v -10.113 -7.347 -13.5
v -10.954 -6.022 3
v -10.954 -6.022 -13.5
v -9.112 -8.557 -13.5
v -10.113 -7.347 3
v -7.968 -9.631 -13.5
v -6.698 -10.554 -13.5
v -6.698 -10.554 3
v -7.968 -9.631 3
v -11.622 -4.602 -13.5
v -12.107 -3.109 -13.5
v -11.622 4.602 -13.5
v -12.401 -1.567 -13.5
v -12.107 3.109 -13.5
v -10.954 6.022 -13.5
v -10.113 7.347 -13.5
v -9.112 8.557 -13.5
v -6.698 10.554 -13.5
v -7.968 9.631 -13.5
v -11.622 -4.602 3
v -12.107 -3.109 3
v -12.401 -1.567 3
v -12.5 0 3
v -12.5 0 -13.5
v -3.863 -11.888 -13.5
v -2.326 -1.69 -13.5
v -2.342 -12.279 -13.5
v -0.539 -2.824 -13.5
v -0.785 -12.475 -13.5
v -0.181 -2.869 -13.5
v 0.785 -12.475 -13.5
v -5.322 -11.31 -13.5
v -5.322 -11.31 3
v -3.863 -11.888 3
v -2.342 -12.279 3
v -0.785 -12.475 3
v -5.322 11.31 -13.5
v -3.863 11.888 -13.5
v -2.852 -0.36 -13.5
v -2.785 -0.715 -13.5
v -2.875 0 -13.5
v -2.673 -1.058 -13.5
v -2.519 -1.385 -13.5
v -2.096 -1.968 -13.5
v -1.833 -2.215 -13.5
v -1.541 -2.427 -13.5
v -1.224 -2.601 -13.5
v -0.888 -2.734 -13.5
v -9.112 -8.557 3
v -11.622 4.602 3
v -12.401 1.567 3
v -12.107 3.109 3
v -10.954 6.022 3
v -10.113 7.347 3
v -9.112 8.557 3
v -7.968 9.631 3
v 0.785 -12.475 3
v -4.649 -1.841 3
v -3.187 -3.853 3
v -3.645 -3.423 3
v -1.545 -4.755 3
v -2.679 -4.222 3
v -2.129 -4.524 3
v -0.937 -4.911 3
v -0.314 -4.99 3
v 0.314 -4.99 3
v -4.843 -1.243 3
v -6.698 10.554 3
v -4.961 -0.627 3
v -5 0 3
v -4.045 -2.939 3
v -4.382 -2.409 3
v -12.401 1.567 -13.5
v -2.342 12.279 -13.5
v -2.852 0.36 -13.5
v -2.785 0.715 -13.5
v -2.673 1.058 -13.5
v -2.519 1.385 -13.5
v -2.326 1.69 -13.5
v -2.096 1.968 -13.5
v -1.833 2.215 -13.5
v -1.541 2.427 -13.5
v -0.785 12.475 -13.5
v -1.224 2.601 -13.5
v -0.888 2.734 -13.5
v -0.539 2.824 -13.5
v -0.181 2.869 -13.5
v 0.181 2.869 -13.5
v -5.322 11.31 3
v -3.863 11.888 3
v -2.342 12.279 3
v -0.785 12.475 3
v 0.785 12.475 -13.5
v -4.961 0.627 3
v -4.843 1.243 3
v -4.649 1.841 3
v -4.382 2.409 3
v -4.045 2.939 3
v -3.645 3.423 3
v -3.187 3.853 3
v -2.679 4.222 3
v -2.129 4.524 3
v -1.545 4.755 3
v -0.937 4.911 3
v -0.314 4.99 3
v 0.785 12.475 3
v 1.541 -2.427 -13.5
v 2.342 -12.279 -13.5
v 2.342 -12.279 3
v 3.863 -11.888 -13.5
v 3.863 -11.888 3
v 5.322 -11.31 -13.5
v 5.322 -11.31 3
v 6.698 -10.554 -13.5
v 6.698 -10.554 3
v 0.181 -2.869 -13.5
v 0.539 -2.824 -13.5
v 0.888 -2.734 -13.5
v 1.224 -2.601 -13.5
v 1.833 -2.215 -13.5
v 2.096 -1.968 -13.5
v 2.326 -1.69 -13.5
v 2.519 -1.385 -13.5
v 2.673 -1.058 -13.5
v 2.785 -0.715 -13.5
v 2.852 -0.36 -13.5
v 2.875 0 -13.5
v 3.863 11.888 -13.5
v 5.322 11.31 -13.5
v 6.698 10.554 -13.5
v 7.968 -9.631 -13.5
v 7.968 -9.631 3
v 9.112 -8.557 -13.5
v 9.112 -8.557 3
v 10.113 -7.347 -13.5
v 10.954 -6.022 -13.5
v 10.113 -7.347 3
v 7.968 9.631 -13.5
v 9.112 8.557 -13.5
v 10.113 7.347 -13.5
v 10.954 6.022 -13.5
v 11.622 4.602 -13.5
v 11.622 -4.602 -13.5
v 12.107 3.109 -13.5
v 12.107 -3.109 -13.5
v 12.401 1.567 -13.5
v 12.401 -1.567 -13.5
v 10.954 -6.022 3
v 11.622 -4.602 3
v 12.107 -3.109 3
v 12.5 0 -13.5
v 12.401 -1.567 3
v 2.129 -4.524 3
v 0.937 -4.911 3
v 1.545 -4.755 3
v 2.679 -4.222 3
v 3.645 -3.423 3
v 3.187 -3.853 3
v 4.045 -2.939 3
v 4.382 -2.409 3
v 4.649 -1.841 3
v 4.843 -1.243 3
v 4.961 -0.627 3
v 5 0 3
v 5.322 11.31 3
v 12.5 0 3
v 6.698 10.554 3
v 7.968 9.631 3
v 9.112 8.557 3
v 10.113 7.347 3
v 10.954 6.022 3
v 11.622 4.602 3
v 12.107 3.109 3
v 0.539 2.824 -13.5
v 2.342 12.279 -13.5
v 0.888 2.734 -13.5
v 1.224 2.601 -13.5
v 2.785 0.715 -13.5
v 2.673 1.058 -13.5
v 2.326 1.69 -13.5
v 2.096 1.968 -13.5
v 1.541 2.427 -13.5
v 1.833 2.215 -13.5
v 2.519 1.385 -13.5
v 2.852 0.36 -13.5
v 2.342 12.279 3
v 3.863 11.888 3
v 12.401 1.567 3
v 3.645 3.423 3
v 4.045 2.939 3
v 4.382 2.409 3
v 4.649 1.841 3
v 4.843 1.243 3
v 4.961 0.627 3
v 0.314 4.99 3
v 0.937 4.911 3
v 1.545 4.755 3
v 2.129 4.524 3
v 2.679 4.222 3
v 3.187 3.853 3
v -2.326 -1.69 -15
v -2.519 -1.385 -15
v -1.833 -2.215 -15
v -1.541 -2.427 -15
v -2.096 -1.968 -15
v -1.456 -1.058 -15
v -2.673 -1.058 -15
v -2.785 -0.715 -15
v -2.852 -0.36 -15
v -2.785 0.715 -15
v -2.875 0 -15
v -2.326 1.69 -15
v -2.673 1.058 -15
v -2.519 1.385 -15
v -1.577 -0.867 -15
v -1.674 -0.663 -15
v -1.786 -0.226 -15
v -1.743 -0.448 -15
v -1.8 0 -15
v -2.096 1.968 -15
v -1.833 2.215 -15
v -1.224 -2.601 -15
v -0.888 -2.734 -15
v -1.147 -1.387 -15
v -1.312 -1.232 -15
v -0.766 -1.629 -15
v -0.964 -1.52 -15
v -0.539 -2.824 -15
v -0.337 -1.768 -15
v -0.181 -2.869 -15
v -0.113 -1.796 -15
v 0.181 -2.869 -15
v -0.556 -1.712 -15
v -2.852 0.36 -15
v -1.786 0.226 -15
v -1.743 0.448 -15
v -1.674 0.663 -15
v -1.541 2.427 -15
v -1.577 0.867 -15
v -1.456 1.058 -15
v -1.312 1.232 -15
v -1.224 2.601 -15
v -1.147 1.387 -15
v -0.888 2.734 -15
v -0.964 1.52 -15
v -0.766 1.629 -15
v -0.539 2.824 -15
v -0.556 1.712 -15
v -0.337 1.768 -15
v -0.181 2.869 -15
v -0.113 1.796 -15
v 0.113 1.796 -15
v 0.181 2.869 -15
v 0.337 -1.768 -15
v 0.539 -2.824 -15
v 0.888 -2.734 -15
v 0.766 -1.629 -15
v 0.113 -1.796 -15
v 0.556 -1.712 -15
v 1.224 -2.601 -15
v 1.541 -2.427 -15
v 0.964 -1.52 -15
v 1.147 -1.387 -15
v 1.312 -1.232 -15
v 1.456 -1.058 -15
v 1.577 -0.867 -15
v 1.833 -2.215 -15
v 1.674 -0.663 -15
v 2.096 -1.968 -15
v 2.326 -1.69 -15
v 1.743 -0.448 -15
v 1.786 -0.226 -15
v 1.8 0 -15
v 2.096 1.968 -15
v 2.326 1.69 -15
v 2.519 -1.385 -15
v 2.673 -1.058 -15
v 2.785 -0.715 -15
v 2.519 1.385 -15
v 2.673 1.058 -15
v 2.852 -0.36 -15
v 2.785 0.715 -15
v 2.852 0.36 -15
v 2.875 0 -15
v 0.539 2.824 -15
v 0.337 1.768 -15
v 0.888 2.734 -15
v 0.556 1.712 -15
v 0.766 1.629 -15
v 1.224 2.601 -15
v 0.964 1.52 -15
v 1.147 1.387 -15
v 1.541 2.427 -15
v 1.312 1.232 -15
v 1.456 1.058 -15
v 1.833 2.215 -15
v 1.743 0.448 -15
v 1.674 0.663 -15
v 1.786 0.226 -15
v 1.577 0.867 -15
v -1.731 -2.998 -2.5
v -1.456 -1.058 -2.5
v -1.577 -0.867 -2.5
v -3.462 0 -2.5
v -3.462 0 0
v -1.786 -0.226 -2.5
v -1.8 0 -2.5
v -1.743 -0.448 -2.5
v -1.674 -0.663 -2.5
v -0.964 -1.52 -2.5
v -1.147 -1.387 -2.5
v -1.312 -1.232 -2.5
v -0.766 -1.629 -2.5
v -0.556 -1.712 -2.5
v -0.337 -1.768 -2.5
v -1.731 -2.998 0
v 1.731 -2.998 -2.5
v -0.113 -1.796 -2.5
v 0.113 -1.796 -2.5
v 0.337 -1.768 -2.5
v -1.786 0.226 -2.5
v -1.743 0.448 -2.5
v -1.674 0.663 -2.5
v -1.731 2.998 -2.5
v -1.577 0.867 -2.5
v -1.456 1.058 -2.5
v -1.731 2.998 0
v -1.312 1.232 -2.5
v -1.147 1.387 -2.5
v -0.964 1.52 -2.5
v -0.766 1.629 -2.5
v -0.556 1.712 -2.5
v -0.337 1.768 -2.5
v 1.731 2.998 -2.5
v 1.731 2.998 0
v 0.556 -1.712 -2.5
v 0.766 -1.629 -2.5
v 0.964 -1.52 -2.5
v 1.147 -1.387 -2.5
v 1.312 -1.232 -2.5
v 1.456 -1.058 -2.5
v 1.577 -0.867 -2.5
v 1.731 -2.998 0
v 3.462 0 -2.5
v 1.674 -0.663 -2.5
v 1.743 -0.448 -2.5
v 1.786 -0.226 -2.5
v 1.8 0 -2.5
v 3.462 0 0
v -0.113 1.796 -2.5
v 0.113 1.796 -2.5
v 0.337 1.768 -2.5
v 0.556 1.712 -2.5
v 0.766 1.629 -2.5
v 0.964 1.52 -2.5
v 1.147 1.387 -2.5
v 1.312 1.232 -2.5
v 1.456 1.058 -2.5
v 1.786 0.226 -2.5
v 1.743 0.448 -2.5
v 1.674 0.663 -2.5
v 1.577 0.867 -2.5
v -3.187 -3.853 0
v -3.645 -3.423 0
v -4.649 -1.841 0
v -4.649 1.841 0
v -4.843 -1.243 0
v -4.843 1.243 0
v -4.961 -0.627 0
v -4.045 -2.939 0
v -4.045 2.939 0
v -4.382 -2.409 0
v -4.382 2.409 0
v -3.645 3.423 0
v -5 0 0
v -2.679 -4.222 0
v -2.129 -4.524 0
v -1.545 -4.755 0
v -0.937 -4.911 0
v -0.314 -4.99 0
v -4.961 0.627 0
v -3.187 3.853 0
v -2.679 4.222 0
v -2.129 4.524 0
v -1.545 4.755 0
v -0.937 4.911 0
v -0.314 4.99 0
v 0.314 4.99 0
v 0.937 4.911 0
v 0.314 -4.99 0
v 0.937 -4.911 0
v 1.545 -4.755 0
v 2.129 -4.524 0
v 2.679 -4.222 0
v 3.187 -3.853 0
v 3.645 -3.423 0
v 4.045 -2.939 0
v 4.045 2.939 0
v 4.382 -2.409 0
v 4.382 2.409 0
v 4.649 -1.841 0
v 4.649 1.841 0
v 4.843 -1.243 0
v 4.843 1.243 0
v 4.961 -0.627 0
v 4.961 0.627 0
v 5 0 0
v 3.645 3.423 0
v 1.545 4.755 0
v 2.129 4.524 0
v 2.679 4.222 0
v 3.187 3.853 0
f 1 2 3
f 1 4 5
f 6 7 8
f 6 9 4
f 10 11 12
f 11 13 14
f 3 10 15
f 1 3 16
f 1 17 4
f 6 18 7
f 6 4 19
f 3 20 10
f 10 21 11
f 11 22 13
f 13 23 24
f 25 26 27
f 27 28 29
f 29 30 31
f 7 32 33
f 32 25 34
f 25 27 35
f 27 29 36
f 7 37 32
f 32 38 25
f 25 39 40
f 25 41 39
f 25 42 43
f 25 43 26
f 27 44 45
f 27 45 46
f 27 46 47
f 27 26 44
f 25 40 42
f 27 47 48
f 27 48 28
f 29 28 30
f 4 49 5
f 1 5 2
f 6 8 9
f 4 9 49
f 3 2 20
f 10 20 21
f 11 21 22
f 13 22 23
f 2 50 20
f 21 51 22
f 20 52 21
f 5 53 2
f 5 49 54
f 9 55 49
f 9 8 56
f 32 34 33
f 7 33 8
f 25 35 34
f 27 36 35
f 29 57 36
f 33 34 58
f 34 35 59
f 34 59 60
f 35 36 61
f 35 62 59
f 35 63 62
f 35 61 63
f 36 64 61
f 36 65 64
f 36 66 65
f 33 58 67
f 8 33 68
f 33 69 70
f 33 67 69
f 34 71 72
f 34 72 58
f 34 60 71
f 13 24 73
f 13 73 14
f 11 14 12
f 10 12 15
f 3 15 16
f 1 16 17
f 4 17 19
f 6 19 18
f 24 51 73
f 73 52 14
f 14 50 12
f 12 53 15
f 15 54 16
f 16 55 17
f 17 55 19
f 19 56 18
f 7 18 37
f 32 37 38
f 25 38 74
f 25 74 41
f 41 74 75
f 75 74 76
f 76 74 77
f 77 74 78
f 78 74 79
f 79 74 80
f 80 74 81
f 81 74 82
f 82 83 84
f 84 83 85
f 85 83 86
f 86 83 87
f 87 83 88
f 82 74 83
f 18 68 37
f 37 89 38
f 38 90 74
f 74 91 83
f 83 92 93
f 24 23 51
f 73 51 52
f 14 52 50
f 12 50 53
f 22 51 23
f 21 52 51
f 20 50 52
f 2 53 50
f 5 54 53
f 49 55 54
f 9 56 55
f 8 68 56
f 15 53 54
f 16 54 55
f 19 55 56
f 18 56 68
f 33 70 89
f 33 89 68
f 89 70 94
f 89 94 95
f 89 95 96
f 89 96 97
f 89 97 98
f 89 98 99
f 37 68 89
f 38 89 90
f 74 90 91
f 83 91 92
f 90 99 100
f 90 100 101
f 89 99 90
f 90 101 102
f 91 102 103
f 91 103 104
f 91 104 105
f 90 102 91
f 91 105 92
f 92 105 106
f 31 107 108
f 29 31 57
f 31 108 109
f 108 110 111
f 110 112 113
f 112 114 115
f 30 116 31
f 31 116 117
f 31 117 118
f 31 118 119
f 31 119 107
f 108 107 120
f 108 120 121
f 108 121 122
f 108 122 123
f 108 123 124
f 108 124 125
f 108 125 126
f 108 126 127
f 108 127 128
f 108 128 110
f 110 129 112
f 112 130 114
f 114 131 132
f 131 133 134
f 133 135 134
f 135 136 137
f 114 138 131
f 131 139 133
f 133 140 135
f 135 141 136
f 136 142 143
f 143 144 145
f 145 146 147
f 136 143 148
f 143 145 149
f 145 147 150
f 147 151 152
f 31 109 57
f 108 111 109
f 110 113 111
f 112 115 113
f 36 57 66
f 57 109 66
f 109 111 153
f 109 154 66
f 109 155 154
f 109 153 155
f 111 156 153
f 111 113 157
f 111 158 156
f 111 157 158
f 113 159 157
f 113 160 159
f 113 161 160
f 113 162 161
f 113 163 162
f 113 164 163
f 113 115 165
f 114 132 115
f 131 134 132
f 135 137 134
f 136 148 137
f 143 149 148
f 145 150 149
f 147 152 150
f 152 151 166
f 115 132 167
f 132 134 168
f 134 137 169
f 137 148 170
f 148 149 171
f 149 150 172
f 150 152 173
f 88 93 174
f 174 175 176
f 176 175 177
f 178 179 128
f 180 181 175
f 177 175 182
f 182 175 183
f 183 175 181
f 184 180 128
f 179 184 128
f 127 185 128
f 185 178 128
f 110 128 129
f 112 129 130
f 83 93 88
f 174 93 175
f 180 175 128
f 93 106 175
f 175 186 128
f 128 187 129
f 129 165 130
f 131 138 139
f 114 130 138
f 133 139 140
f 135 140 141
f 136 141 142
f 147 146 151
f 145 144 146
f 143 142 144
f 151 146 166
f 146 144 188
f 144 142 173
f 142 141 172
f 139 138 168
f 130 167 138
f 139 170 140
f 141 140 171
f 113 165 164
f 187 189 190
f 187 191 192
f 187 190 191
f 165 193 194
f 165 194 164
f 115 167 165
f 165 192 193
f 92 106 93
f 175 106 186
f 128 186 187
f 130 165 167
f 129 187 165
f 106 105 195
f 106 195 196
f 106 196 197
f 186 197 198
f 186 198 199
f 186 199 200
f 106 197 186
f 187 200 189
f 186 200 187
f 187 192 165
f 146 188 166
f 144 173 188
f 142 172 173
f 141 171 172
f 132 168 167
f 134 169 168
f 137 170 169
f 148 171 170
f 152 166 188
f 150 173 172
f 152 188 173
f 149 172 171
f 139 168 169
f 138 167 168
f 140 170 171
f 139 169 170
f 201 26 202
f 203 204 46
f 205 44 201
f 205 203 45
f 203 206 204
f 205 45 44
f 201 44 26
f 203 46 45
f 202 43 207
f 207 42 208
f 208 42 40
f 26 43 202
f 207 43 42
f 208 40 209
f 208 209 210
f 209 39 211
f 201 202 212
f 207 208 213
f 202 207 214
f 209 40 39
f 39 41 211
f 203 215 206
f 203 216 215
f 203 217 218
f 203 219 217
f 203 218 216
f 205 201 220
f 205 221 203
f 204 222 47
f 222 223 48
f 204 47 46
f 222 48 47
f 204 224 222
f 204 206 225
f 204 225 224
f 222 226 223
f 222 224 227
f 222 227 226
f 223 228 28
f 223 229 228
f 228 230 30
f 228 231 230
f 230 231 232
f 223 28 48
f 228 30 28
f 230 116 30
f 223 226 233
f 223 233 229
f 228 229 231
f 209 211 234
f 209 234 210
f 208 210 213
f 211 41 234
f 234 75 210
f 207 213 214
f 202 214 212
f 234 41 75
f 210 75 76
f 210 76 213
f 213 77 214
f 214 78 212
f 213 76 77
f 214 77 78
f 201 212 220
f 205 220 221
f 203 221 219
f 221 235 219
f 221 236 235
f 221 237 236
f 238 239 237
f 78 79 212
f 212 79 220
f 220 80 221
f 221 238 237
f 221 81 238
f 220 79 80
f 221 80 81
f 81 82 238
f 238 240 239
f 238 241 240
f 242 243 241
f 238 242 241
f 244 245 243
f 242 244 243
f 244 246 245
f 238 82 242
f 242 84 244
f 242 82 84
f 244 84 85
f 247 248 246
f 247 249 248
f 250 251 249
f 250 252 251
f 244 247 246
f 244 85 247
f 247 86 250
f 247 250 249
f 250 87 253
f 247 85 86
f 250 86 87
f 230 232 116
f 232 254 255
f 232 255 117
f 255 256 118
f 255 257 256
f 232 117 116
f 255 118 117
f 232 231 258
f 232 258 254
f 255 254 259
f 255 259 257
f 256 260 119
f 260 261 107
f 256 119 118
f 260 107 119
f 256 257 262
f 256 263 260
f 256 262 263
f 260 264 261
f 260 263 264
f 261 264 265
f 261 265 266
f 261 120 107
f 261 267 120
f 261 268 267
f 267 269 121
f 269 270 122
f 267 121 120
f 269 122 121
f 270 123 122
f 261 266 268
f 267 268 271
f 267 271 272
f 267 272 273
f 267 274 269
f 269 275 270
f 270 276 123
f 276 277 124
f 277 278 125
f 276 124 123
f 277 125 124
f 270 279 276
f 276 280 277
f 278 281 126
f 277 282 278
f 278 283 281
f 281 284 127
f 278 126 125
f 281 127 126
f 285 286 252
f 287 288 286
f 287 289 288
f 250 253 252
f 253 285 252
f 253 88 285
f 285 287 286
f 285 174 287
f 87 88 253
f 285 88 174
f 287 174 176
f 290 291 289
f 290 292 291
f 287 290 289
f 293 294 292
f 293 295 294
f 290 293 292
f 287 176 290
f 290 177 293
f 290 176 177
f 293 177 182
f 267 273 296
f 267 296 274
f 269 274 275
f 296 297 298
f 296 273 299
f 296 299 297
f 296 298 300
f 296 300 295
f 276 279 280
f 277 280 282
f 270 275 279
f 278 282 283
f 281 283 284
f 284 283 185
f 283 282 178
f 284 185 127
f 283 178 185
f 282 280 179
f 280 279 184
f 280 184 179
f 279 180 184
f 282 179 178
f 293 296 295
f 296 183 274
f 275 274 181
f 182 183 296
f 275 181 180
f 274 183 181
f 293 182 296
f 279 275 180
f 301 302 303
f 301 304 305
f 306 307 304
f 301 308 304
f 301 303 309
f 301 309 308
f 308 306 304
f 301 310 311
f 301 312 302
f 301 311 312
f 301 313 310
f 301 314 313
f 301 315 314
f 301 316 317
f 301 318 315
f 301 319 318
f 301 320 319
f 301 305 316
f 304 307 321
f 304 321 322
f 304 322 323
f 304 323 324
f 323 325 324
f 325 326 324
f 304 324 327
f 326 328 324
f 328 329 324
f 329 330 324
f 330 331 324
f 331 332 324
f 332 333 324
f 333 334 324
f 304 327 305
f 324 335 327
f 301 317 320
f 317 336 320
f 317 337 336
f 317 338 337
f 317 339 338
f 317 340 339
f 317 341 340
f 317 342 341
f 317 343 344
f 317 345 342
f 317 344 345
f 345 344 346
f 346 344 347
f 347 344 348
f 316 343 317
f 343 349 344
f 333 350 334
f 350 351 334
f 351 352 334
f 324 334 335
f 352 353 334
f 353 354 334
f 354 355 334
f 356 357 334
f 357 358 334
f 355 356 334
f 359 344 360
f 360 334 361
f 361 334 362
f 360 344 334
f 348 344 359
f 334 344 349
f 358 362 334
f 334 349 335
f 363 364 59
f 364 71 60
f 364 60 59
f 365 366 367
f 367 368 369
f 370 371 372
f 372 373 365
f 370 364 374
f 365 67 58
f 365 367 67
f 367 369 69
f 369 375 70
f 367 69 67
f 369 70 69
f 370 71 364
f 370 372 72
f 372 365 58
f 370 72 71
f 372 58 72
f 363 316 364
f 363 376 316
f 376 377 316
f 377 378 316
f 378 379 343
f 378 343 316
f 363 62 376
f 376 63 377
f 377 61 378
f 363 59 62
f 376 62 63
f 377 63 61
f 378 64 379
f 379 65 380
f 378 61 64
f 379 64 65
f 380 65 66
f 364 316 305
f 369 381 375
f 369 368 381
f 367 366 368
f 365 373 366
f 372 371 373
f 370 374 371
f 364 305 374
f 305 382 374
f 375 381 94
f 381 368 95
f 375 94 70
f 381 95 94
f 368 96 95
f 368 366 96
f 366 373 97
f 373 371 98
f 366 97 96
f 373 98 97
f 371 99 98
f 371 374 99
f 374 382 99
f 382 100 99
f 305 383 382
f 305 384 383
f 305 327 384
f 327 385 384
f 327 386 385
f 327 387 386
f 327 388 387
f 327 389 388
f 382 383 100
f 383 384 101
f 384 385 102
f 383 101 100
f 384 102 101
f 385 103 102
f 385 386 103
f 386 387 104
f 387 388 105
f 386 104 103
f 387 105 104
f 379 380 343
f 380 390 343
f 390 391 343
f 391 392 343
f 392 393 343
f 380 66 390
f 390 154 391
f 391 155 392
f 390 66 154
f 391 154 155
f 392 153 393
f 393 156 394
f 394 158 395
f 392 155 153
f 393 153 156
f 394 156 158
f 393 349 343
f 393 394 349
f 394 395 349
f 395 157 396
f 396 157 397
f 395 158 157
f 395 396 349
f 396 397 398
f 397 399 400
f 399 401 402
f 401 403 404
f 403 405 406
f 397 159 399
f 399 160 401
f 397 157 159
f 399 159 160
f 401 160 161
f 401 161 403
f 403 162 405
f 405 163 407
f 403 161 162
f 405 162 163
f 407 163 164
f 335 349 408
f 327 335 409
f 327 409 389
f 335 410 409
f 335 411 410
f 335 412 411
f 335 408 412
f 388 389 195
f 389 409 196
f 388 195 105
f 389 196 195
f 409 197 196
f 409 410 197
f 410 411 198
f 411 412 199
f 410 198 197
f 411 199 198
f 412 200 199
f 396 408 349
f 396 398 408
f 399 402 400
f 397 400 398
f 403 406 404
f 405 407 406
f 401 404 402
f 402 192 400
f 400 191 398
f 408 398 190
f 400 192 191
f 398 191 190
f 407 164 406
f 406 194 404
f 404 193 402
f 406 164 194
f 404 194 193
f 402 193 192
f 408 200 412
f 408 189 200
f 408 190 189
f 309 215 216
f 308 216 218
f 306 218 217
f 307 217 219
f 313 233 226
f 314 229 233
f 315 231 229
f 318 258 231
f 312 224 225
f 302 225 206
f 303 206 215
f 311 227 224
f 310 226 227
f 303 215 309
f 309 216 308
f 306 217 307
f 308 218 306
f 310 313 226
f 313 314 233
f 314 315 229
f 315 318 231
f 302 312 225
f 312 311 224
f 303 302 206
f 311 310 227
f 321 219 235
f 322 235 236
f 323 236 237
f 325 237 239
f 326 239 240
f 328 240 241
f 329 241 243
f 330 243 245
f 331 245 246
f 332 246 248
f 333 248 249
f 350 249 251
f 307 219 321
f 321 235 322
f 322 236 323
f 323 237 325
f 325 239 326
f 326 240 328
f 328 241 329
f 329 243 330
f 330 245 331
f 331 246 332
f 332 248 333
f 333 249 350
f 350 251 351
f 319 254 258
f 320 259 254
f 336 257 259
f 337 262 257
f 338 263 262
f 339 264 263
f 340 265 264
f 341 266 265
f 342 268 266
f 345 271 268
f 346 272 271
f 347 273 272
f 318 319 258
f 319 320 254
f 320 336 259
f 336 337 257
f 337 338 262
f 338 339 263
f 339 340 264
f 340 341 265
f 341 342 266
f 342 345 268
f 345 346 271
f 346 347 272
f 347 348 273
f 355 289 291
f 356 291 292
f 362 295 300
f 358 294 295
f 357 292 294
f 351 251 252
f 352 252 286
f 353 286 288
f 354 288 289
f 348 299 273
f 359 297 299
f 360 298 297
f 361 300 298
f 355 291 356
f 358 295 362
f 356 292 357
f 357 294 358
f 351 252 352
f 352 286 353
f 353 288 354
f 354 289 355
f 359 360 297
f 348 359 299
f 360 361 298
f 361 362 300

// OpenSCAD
$fn = 50;

difference() {
	union() {
		translate(v = [0, 0, -13.5]) {
			cylinder(h = 16.5, r = 12.5);
		}
		#translate(v = [0, 0, -15.0]) {
			cylinder(h = 15, r = 2.875);
		}
	}
	union() {
		translate(v = [0, 0, 0]) {
			rotate(a = [0, 0, 0]) {
				difference() {
					union() {
						translate(v = [0, 0, -2.5]) {
							linear_extrude(height = 2.5) {
								polygon(points = [[3.4619999999999997, 0.0], [1.7310000000000003, 2.9981799479017264], [-1.7309999999999992, 2.9981799479017264], [-3.4619999999999997, 4.2397272186481365e-16], [-1.7310000000000014, -2.998179947901726], [1.7309999999999977, -2.9981799479017277]]);
							}
						}
					}
					union();
				}
			}
		}
		#cylinder(h = 3, r = 5.0);
		#translate(v = [0, 0, -100.0]) {
			cylinder(h = 200, r = 1.8);
		}
	}
}
